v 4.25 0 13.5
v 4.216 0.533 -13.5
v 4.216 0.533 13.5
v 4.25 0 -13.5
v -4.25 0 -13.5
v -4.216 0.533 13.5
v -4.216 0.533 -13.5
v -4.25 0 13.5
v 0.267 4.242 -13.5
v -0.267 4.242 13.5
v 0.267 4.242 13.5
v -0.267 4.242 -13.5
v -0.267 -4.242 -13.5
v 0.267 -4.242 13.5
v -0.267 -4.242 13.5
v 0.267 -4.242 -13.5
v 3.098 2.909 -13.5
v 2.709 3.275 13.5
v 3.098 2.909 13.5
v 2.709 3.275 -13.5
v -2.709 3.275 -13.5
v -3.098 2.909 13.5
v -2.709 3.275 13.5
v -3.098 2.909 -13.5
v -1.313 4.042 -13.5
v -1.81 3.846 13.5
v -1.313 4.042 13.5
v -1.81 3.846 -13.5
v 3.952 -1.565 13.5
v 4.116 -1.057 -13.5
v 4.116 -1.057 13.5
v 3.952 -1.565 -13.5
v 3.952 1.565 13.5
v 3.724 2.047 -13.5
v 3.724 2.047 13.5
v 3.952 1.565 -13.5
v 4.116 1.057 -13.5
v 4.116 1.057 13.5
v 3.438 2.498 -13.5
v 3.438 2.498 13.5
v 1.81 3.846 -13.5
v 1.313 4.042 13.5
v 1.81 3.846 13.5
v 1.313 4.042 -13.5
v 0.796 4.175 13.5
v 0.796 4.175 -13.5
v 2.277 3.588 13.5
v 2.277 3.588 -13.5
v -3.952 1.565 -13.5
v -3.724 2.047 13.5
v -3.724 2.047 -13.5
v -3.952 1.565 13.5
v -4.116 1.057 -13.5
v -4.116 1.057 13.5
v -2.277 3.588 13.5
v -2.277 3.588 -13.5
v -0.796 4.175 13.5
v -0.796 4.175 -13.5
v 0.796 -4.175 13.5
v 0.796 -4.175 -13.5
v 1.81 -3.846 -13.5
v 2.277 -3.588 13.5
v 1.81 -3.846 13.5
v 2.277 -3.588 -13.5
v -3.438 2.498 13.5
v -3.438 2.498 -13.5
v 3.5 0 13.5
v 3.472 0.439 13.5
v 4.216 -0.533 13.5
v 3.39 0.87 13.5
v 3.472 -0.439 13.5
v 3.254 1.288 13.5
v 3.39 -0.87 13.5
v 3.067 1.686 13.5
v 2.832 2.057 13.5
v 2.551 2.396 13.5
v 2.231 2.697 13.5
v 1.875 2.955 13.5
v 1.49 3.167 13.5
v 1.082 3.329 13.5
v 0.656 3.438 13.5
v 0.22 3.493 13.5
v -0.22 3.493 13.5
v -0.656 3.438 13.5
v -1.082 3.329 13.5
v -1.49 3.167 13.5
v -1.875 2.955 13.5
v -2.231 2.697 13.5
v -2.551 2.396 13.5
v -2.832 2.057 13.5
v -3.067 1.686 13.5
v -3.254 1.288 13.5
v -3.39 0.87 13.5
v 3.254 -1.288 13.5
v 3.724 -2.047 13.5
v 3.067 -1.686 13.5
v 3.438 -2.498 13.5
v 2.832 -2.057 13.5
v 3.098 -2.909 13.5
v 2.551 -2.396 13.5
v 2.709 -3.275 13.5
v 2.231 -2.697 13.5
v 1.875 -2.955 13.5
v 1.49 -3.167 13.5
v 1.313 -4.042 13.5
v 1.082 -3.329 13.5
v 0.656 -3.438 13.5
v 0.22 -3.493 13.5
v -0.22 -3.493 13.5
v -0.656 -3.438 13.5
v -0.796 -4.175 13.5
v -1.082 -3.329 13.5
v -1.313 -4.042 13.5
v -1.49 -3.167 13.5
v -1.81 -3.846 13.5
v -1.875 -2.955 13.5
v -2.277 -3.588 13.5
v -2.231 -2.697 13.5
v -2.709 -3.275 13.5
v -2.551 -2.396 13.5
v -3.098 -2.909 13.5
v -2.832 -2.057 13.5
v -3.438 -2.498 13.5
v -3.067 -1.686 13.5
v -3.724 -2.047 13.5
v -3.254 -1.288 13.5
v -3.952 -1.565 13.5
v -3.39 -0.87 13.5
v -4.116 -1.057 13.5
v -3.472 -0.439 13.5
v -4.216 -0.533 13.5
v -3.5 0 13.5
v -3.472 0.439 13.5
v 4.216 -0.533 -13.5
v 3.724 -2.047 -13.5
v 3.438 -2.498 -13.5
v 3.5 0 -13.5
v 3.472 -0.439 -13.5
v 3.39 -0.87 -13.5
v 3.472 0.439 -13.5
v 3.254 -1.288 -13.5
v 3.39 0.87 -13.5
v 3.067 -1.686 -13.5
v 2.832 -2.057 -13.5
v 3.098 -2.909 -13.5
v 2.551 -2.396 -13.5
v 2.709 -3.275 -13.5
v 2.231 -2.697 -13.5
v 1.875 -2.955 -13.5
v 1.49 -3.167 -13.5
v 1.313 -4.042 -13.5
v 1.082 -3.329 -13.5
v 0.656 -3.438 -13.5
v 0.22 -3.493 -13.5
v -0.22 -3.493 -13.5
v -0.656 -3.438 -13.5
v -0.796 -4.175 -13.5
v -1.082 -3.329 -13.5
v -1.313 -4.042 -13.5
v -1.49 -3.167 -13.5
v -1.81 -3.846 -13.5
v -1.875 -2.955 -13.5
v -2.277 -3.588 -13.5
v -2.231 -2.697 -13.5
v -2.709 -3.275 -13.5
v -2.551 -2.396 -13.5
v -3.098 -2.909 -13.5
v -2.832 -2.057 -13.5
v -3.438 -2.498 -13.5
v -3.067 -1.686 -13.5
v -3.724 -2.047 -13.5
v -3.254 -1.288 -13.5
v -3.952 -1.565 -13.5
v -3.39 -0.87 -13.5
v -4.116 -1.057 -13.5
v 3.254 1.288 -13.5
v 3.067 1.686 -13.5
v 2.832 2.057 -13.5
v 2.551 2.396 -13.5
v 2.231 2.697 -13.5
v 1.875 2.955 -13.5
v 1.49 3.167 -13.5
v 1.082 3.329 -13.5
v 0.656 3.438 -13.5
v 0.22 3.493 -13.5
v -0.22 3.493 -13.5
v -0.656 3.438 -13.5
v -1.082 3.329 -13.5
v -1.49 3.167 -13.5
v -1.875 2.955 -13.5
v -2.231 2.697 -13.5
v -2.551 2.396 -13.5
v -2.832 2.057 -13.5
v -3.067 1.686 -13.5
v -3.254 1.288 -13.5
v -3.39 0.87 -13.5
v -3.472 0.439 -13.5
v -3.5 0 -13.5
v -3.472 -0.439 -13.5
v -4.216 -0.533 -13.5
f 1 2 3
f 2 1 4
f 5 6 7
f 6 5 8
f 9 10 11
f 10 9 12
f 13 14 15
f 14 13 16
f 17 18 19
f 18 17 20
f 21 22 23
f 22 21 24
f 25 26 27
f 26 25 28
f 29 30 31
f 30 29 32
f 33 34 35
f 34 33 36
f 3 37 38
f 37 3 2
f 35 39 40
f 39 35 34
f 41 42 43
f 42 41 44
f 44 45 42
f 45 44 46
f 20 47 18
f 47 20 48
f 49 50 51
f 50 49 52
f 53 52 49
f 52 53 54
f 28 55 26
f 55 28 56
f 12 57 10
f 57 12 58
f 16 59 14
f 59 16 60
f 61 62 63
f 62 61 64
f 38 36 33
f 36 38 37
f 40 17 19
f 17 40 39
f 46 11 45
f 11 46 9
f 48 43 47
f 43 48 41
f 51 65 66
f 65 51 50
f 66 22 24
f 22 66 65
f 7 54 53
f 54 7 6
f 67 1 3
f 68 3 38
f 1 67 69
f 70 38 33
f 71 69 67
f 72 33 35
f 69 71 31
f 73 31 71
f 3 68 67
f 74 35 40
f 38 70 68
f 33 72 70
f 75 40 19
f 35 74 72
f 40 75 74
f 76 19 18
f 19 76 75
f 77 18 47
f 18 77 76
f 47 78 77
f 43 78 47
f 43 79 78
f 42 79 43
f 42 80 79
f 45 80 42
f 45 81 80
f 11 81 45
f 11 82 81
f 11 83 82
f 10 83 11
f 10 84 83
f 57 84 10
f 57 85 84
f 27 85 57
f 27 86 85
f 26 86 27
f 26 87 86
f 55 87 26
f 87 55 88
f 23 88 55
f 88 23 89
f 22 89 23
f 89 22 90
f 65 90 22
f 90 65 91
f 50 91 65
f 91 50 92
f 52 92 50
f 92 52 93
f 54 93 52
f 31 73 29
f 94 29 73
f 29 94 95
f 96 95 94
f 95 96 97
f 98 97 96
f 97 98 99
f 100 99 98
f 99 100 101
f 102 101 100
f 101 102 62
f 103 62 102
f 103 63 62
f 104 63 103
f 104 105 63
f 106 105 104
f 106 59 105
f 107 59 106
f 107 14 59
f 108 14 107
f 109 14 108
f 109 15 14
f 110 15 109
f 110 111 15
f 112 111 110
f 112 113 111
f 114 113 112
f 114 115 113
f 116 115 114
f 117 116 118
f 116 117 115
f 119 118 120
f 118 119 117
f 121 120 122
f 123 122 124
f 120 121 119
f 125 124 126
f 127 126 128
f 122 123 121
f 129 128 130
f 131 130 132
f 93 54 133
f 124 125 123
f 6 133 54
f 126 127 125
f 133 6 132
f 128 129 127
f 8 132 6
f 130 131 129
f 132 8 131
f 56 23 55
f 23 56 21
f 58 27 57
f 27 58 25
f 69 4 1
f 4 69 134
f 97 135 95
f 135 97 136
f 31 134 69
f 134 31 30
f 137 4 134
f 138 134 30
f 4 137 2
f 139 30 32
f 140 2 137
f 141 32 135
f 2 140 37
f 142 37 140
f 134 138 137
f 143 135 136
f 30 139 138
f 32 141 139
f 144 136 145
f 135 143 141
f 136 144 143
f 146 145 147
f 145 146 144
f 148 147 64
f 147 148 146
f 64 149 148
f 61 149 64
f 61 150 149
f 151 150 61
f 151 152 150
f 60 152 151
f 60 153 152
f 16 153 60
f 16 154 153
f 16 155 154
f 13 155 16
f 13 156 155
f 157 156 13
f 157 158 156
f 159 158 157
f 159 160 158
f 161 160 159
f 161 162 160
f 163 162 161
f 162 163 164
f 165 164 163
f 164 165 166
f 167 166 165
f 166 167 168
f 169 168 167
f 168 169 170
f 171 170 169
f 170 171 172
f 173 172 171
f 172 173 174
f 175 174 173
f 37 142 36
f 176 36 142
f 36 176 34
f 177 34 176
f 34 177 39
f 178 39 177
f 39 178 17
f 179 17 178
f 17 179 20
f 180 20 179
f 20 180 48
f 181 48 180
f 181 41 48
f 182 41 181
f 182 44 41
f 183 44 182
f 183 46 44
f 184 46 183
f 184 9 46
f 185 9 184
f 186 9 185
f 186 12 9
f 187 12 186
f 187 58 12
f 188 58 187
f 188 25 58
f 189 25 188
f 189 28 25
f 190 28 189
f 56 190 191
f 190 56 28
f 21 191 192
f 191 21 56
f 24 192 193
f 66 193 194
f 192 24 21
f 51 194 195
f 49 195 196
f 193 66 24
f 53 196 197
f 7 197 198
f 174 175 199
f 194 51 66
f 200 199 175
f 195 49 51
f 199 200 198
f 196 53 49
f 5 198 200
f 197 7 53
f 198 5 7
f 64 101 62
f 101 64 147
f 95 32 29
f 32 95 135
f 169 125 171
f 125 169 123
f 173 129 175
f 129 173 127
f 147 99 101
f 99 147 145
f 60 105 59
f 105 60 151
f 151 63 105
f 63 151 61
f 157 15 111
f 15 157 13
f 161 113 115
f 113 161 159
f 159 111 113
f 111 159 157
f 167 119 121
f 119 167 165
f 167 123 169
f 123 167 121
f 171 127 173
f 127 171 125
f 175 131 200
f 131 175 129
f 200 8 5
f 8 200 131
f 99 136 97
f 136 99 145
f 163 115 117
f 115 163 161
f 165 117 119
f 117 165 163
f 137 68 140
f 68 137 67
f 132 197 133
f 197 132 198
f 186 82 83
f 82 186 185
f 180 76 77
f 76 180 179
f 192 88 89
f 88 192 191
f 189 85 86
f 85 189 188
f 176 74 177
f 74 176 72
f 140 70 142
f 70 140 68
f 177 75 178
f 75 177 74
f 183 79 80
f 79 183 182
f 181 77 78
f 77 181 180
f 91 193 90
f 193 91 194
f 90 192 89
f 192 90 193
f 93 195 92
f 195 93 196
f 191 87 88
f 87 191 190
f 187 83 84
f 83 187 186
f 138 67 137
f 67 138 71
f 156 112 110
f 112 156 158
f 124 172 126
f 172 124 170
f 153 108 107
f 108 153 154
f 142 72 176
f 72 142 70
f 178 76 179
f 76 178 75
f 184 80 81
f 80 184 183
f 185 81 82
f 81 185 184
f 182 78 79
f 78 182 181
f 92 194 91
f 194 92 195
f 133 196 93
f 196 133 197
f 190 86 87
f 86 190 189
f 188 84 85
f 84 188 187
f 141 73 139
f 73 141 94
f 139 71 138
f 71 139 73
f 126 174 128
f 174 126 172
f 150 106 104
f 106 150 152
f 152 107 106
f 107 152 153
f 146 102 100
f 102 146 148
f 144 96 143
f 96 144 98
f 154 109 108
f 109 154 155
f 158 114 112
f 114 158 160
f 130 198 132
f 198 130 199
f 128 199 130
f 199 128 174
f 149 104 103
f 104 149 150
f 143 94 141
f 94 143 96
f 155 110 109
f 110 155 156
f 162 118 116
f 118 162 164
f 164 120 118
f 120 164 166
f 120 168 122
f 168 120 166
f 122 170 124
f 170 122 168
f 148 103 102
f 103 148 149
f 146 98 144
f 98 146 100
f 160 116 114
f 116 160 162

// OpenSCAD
$fn = 50;


difference() {
	union() {
		translate(v = [0, 0, -13.5000000000]) {
			cylinder(h = 27, r = 4.2500000000);
		}
	}
	union() {
		translate(v = [0, 0, -100.0000000000]) {
			cylinder(h = 200, r = 3.5000000000);
		}
	}
}
